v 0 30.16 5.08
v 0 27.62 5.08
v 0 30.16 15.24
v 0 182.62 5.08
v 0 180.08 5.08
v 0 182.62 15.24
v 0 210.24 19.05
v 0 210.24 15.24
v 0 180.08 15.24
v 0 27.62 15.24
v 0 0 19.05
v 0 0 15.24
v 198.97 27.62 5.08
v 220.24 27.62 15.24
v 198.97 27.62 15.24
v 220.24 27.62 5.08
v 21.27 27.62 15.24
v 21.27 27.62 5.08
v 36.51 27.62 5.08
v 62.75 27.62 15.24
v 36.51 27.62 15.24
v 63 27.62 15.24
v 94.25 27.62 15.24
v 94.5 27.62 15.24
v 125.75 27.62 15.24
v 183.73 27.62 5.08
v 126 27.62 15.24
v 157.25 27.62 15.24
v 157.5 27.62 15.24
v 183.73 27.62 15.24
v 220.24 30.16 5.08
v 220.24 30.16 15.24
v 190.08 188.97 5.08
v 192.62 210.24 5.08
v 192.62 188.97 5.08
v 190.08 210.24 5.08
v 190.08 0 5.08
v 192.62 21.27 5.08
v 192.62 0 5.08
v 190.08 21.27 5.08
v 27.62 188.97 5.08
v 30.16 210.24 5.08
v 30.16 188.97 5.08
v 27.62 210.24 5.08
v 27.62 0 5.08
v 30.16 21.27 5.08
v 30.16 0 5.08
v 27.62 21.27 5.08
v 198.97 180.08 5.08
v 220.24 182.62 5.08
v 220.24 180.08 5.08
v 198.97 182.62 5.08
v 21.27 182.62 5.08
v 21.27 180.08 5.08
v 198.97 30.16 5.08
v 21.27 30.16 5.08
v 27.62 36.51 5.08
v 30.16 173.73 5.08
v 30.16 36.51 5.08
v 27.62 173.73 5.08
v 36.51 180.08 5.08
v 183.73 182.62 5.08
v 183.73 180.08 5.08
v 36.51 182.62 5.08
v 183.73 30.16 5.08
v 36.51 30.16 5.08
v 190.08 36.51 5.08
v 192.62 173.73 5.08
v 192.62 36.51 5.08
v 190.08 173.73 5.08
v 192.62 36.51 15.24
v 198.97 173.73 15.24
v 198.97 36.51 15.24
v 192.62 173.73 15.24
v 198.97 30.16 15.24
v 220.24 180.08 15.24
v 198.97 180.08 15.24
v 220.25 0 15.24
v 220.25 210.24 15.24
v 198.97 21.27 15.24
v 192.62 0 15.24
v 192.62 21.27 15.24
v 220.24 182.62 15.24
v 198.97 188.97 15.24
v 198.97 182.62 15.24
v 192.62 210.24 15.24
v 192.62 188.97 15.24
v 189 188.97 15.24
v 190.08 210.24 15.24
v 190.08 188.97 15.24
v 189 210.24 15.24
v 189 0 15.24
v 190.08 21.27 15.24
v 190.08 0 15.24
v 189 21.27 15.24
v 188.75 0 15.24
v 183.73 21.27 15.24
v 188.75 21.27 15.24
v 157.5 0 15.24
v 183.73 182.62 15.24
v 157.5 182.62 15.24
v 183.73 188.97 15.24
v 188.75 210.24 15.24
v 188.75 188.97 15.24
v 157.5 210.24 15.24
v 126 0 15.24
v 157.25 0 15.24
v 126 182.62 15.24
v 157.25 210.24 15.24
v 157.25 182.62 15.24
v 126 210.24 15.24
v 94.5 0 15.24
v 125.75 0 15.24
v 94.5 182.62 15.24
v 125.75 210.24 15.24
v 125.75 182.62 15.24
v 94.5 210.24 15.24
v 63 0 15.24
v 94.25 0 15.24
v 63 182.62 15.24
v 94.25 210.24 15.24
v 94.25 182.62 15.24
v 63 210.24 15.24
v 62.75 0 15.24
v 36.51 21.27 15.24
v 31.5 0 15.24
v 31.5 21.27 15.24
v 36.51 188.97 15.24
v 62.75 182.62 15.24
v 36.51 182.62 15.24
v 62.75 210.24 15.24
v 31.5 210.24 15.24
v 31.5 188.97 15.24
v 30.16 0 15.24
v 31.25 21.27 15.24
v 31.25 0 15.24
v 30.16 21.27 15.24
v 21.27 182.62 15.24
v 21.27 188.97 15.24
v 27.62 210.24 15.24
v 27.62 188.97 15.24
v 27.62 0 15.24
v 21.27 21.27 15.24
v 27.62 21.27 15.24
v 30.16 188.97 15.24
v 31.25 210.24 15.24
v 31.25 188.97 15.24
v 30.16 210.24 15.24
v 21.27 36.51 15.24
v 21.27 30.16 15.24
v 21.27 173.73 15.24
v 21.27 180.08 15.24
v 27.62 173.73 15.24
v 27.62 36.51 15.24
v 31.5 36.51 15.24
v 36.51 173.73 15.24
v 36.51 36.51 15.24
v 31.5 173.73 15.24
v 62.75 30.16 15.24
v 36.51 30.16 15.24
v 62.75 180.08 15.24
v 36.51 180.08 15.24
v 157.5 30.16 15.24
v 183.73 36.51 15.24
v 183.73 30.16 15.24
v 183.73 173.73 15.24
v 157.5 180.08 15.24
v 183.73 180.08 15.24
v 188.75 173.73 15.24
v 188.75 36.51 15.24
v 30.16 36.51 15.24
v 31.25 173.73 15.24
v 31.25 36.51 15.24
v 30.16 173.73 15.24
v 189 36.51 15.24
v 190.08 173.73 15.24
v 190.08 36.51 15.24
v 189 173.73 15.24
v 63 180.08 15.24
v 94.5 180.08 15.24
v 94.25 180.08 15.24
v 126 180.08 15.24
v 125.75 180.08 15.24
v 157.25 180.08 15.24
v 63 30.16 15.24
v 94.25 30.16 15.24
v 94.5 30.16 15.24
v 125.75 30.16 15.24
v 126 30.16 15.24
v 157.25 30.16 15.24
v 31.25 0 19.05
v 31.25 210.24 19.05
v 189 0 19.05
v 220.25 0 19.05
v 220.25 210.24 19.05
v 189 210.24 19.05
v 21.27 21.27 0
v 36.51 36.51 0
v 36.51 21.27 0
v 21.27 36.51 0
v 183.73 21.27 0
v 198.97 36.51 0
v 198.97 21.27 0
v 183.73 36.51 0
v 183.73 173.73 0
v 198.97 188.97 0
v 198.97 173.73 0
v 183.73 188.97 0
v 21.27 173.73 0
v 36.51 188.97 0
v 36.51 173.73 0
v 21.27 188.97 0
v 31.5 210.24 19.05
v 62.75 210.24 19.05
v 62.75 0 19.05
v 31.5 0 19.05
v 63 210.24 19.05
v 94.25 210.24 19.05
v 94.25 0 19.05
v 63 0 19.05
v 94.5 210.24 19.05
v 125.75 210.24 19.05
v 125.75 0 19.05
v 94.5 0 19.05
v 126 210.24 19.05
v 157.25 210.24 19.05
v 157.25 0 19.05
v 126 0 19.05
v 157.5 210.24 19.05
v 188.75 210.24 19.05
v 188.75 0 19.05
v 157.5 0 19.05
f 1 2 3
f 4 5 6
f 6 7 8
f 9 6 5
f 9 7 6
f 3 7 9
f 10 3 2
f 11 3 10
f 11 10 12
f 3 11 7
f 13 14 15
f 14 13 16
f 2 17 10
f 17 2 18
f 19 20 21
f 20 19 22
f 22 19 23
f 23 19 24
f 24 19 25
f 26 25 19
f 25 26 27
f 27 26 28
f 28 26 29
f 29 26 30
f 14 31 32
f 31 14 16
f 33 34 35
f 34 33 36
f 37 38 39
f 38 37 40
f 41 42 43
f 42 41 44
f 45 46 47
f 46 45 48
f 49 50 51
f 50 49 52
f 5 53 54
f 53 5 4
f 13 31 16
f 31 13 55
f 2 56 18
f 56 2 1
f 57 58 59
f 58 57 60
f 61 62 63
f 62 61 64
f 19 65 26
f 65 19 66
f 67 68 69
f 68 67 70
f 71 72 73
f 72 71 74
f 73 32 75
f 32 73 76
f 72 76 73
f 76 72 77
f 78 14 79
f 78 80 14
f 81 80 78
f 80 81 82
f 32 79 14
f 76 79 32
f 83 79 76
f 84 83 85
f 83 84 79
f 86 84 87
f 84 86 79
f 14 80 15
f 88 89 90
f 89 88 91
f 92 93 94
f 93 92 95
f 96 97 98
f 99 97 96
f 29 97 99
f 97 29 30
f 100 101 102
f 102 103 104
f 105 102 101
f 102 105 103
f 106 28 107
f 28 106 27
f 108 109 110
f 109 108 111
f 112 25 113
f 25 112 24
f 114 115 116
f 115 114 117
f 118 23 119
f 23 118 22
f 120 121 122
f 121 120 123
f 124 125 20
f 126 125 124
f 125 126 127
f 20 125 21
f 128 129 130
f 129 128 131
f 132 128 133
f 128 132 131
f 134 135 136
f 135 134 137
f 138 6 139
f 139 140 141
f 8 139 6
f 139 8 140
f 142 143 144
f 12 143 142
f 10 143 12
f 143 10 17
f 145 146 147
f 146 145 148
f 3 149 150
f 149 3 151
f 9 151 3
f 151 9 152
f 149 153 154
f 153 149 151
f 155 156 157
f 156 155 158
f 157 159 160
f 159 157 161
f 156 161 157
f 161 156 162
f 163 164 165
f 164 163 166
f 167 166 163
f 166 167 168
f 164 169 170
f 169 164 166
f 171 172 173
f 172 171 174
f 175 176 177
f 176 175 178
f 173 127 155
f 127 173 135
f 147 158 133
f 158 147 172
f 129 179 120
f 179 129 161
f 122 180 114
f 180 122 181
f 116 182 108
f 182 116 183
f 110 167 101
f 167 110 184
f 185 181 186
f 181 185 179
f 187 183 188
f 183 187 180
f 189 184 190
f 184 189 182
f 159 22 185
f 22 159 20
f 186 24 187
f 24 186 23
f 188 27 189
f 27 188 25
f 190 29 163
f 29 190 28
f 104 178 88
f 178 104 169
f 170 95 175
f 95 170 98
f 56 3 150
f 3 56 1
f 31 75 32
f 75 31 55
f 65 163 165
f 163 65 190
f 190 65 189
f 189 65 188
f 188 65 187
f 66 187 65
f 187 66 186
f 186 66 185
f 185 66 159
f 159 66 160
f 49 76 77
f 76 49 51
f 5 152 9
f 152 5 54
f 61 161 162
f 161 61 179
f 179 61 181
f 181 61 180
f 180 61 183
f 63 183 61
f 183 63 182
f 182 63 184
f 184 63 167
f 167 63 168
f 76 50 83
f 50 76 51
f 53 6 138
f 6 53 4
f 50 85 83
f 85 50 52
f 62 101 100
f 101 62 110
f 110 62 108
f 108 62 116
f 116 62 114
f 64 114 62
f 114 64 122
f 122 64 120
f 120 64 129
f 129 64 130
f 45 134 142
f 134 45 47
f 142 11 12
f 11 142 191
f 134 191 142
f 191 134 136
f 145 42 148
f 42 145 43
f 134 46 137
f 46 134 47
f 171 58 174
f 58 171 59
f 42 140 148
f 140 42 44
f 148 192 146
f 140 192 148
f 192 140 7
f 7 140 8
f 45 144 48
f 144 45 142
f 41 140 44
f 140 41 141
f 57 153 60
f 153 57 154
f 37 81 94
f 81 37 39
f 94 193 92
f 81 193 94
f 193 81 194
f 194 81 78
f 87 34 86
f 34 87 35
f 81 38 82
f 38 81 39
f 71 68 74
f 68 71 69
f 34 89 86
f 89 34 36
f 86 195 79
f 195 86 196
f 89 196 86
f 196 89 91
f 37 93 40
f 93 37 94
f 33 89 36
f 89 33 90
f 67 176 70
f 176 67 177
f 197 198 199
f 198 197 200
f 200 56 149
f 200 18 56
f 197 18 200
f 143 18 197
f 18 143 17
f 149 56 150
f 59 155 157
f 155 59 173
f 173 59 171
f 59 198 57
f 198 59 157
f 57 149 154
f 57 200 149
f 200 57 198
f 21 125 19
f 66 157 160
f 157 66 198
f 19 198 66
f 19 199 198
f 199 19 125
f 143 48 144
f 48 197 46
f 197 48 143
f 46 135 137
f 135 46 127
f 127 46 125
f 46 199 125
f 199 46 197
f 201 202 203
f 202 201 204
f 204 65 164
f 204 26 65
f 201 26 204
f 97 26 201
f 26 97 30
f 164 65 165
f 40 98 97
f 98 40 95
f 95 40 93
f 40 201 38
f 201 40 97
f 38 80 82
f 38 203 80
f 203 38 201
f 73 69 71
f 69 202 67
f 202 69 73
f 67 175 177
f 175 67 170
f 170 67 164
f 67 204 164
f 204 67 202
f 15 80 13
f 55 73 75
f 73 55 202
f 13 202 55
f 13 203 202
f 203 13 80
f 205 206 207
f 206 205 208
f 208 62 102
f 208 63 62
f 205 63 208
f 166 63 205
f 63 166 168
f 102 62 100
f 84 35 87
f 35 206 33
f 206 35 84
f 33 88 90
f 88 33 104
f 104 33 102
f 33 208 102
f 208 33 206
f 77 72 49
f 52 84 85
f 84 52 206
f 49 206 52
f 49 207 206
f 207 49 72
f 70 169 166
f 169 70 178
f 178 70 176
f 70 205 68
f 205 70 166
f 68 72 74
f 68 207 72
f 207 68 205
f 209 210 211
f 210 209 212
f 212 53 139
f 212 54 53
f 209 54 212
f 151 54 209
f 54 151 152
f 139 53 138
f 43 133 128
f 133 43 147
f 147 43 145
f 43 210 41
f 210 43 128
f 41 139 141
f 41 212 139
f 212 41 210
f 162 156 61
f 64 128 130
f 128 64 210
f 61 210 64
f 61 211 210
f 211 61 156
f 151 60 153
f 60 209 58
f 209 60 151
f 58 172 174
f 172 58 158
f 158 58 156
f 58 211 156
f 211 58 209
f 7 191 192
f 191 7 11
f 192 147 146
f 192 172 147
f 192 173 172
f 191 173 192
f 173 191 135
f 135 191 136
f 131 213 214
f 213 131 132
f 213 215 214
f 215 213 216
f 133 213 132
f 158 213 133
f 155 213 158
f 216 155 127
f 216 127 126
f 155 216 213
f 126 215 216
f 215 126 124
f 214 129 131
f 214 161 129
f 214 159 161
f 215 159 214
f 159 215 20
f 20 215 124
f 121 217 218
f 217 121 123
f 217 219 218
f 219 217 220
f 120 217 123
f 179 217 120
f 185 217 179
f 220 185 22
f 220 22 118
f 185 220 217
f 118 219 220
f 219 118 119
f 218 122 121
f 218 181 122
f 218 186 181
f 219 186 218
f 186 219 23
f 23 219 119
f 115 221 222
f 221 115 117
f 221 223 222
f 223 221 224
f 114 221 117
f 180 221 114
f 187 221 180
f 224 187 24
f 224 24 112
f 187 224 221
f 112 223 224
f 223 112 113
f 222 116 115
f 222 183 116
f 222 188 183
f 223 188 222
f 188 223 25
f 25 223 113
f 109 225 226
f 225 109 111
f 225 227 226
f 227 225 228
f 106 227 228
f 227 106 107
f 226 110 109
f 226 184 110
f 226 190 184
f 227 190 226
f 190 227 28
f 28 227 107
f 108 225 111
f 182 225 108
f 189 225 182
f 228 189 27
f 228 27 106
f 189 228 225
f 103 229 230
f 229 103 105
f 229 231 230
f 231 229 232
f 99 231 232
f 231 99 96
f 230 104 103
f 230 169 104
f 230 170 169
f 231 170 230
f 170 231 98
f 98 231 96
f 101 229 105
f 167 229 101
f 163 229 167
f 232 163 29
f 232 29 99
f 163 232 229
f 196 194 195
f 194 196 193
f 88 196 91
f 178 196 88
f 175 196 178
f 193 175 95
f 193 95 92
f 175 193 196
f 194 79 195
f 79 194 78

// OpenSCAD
// file: common/board.scad
// board.scad

BOARD_DEFAULT_LENGTH = 600;
BOARD_DEFAULT_WIDTH = 120;
BOARD_DEFAULT_THICKNESS = 120;

function board_get_default_size()
    = [BOARD_DEFAULT_LENGTH, BOARD_DEFAULT_WIDTH, BOARD_DEFAULT_THICKNESS];

module board(size = board_get_default_size(), center = false)
{
    // size[0] is always with the grain
    // size[1] is against the grain
    // size[2] is the board thickness
    cube(size = size, center = center);
}
// main file
// bed_frame.scad
// units: centimeter
// TODO
// - joints
// - make parts/files for each module

use <common/board.scad>

// king size mattress
// - 80 x 76 in
// - 203.2 x 193.04 cm
// rounding up a little
MATTRESS_LENGTH = 205;
MATTRESS_WIDTH = 195;

MATTRESS_TO_EDGE_OVERRUN = 15.24/2;
SUPPORT_TO_SIDE_DISTANCE =
        MATTRESS_TO_EDGE_OVERRUN
        + 20;
SUPPORT_TO_END_DISTANCE =
        MATTRESS_TO_EDGE_OVERRUN
        + 20;
SUPPORT_BEAM_BOARD_WIDTH = 10.16;
TOP_BOARD_SEP_DIST = 0.25;

POST_BOARD_LENGTH = 15.24;
POST_BOARD_WIDTH = 15.24;
POST_BOARD_THICKNESS = 15.24;

// TODO - + constant
SIDE_SUPPORT_BEAM_BOARD_LENGTH =
        MATTRESS_LENGTH
        + (2 * MATTRESS_TO_EDGE_OVERRUN);
SIDE_SUPPORT_BEAM_BOARD_WIDTH = SUPPORT_BEAM_BOARD_WIDTH;
SIDE_SUPPORT_BEAM_BOARD_THICKNESS = 2.54;

// TODO - + constant
END_SUPPORT_BEAM_BOARD_LENGTH =
        MATTRESS_WIDTH
        + (2 * MATTRESS_TO_EDGE_OVERRUN);
END_SUPPORT_BEAM_BOARD_WIDTH = SUPPORT_BEAM_BOARD_WIDTH;
END_SUPPORT_BEAM_BOARD_THICKNESS = 2.54;

TOP_BOARD_LENGTH =
        MATTRESS_WIDTH
        + (2 * MATTRESS_TO_EDGE_OVERRUN);
TOP_BOARD_WIDTH = 31.25;
TOP_BOARD_THICKNESS = 3.81;
TOP_BOARD_COUNT = 7;

module top_board()
{
    board_size = [
            TOP_BOARD_LENGTH,
            TOP_BOARD_WIDTH,
            TOP_BOARD_THICKNESS];

    translate([TOP_BOARD_WIDTH, 0, 0])
        rotate([0, 0, 90])
            board(board_size);
}

module post_board()
{
    board_size = [
            POST_BOARD_LENGTH,
            POST_BOARD_WIDTH,
            POST_BOARD_THICKNESS];

    translate([POST_BOARD_THICKNESS, 0, 0])
        rotate([0, -90, 0])
            board(board_size);
}

module side_support_beam_board()
{
    board_size = [
            SIDE_SUPPORT_BEAM_BOARD_LENGTH,
            SIDE_SUPPORT_BEAM_BOARD_WIDTH,
            SIDE_SUPPORT_BEAM_BOARD_THICKNESS];

    translate([0, SIDE_SUPPORT_BEAM_BOARD_THICKNESS, 0])
        rotate([90, 0, 0])
            board(board_size);
}

module end_support_beam_board()
{
    board_size = [
            END_SUPPORT_BEAM_BOARD_LENGTH,
            END_SUPPORT_BEAM_BOARD_WIDTH,
            END_SUPPORT_BEAM_BOARD_THICKNESS];

        rotate([90, 0, 90])
            board(board_size);
}

module side_supports()
{
    offset_a = [
            0,
            SUPPORT_TO_SIDE_DISTANCE,
            POST_BOARD_LENGTH - SUPPORT_BEAM_BOARD_WIDTH];

    offset_b = [
            0,
            END_SUPPORT_BEAM_BOARD_LENGTH
                    - SIDE_SUPPORT_BEAM_BOARD_THICKNESS
                    - SUPPORT_TO_SIDE_DISTANCE,
            POST_BOARD_LENGTH - SUPPORT_BEAM_BOARD_WIDTH];

    translate(offset_a)
        side_support_beam_board();

    translate(offset_b)
        side_support_beam_board();
}

module end_supports()
{
    offset_a = [
            SUPPORT_TO_END_DISTANCE,
            0,
            POST_BOARD_LENGTH - SUPPORT_BEAM_BOARD_WIDTH];

    offset_b = [
            SIDE_SUPPORT_BEAM_BOARD_LENGTH
                    - END_SUPPORT_BEAM_BOARD_THICKNESS
                    - SUPPORT_TO_END_DISTANCE,
            0,
            POST_BOARD_LENGTH - SUPPORT_BEAM_BOARD_WIDTH];

    translate(offset_a)
        end_support_beam_board();

    translate(offset_b)
        end_support_beam_board();
}

module support_posts()
{
    offset_a = [
            SUPPORT_TO_END_DISTANCE
                    - (POST_BOARD_THICKNESS/2)
                    + (END_SUPPORT_BEAM_BOARD_THICKNESS/2),
            SUPPORT_TO_SIDE_DISTANCE
                    - (POST_BOARD_WIDTH/2)
                    + (SIDE_SUPPORT_BEAM_BOARD_THICKNESS/2),
            0];

    offset_b = [
            SIDE_SUPPORT_BEAM_BOARD_LENGTH
                    - SUPPORT_TO_END_DISTANCE
                    - (END_SUPPORT_BEAM_BOARD_THICKNESS/2)
                    - (POST_BOARD_THICKNESS/2),
            SUPPORT_TO_SIDE_DISTANCE
                    - (POST_BOARD_WIDTH/2)
                    + (SIDE_SUPPORT_BEAM_BOARD_THICKNESS/2),
            0];

    offset_c = [
            SIDE_SUPPORT_BEAM_BOARD_LENGTH
                    - SUPPORT_TO_END_DISTANCE
                    - (END_SUPPORT_BEAM_BOARD_THICKNESS/2)
                    - (POST_BOARD_THICKNESS/2),
            END_SUPPORT_BEAM_BOARD_LENGTH
                    - SUPPORT_TO_END_DISTANCE
                    - (SIDE_SUPPORT_BEAM_BOARD_THICKNESS/2)
                    - (POST_BOARD_WIDTH/2),
            0];

    offset_d = [
            SUPPORT_TO_END_DISTANCE
                    - (POST_BOARD_THICKNESS/2)
                    + (END_SUPPORT_BEAM_BOARD_THICKNESS/2),
            END_SUPPORT_BEAM_BOARD_LENGTH
                    - SUPPORT_TO_END_DISTANCE
                    - (SIDE_SUPPORT_BEAM_BOARD_THICKNESS/2)
                    - (POST_BOARD_WIDTH/2),
            0];

    translate(offset_a)
        post_board();

    translate(offset_b)
        post_board();

    translate(offset_c)
        post_board();

    translate(offset_d)
        post_board();
}

module top_boards()
{
    for(b = [0 : TOP_BOARD_COUNT - 1])
    {
        xoffset =
                (b * (TOP_BOARD_WIDTH
                        + TOP_BOARD_SEP_DIST));

        translate([xoffset, 0, POST_BOARD_LENGTH])
            top_board();
    }
}

module base()
{
    color("SandyBrown")
        side_supports();

    color("SandyBrown")
        end_supports();

    color("Peru")
        support_posts();
}

module bed_frame()
{
    base();
    
    color("Sienna")
        top_boards();
}

module mattress()
{
    mattress_size = [
            MATTRESS_LENGTH,
            MATTRESS_WIDTH,
            32];

    offset_m = [
            MATTRESS_TO_EDGE_OVERRUN,
            MATTRESS_TO_EDGE_OVERRUN,
            POST_BOARD_LENGTH + 1];

    translate(offset_m)
        cube(mattress_size);
}

module bed_example()
{
    bed_frame();

    %mattress();
}

bed_example();
